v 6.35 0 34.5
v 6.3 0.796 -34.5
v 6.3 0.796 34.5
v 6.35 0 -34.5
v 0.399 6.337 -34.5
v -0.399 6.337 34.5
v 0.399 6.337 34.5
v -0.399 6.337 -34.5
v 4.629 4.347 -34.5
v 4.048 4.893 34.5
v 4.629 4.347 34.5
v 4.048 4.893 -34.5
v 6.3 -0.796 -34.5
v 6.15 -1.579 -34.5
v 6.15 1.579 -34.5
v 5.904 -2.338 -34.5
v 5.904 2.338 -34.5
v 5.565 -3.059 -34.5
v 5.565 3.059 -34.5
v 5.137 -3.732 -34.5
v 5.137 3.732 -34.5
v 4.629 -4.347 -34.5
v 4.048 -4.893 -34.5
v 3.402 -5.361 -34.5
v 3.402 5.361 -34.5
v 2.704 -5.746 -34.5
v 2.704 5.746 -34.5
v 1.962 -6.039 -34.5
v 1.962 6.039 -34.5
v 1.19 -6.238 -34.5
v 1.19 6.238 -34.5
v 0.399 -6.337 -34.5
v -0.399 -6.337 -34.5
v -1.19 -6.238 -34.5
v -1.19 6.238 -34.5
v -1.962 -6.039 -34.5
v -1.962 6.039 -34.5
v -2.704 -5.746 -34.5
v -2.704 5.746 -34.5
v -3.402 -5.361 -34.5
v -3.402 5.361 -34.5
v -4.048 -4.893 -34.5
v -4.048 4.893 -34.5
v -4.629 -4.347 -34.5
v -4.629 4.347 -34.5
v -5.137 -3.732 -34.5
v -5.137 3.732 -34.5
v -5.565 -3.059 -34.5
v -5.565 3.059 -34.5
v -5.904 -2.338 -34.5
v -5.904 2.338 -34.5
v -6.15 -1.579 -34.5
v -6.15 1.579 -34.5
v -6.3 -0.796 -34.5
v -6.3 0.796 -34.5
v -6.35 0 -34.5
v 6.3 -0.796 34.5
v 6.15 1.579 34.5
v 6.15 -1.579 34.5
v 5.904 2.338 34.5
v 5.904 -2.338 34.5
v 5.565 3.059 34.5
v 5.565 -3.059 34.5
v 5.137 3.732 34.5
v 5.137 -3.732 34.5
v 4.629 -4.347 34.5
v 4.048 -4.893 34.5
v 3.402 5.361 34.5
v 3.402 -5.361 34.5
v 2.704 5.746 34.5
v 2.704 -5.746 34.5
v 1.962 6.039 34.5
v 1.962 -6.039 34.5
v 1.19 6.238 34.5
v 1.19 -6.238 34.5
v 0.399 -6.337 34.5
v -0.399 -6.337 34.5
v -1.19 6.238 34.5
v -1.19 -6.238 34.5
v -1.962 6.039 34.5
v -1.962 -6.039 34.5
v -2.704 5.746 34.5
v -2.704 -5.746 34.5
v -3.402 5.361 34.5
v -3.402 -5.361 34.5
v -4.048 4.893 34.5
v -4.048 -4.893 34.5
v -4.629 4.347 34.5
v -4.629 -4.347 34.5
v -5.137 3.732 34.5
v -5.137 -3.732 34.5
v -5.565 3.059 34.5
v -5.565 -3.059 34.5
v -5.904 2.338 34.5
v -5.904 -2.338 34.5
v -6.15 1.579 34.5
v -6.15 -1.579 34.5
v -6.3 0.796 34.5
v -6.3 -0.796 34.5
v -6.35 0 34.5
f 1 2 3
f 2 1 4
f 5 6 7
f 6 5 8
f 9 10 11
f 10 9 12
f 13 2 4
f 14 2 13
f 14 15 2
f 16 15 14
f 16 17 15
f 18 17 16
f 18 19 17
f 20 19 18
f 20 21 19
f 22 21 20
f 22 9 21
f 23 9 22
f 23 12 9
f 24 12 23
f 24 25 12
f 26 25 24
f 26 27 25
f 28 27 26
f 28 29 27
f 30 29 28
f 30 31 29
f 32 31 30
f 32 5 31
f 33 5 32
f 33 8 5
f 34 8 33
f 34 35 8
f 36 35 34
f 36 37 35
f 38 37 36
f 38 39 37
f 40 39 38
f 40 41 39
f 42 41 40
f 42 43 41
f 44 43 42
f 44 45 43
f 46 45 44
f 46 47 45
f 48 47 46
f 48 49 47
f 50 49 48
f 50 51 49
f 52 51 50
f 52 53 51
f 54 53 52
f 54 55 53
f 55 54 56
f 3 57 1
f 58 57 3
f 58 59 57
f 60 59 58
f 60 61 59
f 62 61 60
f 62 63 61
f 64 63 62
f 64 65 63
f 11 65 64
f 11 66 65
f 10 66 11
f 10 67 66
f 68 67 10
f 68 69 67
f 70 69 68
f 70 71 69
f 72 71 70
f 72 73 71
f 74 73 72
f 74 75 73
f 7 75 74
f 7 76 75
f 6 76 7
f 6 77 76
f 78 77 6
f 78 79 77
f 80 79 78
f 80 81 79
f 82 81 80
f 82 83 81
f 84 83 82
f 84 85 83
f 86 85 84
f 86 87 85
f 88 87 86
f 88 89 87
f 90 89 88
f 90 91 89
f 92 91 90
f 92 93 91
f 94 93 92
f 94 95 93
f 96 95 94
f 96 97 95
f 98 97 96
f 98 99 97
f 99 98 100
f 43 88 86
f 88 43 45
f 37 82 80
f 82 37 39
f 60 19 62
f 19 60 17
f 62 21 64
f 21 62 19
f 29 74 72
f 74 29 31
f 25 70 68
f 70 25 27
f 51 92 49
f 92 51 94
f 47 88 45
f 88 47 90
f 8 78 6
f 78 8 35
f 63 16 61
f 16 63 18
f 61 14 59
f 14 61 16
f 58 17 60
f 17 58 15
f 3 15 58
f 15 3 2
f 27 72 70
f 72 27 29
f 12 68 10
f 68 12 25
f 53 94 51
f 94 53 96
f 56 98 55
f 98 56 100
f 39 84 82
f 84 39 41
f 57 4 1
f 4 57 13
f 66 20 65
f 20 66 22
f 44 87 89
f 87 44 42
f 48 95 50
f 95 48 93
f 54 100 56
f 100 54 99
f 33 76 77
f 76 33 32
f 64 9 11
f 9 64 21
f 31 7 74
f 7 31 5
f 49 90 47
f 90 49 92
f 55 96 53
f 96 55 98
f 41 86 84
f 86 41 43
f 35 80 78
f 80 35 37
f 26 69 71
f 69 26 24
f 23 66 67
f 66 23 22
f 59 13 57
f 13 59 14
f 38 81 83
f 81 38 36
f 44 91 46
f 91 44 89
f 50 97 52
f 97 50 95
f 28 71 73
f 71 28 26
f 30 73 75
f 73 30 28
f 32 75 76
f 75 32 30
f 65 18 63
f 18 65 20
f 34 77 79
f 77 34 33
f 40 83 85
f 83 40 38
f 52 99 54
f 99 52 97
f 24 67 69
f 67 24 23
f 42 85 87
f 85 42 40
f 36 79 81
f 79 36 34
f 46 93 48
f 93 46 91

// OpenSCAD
$fn = 50;


difference() {
	union() {
		translate(v = [0, 0, -34.5000000000]) {
			cylinder(h = 69, r = 6.3500000000);
		}
	}
	union() {
		translate(v = [0, 0, -100.0000000000]) {
			cylinder(h = 200, r = 0);
		}
	}
}
